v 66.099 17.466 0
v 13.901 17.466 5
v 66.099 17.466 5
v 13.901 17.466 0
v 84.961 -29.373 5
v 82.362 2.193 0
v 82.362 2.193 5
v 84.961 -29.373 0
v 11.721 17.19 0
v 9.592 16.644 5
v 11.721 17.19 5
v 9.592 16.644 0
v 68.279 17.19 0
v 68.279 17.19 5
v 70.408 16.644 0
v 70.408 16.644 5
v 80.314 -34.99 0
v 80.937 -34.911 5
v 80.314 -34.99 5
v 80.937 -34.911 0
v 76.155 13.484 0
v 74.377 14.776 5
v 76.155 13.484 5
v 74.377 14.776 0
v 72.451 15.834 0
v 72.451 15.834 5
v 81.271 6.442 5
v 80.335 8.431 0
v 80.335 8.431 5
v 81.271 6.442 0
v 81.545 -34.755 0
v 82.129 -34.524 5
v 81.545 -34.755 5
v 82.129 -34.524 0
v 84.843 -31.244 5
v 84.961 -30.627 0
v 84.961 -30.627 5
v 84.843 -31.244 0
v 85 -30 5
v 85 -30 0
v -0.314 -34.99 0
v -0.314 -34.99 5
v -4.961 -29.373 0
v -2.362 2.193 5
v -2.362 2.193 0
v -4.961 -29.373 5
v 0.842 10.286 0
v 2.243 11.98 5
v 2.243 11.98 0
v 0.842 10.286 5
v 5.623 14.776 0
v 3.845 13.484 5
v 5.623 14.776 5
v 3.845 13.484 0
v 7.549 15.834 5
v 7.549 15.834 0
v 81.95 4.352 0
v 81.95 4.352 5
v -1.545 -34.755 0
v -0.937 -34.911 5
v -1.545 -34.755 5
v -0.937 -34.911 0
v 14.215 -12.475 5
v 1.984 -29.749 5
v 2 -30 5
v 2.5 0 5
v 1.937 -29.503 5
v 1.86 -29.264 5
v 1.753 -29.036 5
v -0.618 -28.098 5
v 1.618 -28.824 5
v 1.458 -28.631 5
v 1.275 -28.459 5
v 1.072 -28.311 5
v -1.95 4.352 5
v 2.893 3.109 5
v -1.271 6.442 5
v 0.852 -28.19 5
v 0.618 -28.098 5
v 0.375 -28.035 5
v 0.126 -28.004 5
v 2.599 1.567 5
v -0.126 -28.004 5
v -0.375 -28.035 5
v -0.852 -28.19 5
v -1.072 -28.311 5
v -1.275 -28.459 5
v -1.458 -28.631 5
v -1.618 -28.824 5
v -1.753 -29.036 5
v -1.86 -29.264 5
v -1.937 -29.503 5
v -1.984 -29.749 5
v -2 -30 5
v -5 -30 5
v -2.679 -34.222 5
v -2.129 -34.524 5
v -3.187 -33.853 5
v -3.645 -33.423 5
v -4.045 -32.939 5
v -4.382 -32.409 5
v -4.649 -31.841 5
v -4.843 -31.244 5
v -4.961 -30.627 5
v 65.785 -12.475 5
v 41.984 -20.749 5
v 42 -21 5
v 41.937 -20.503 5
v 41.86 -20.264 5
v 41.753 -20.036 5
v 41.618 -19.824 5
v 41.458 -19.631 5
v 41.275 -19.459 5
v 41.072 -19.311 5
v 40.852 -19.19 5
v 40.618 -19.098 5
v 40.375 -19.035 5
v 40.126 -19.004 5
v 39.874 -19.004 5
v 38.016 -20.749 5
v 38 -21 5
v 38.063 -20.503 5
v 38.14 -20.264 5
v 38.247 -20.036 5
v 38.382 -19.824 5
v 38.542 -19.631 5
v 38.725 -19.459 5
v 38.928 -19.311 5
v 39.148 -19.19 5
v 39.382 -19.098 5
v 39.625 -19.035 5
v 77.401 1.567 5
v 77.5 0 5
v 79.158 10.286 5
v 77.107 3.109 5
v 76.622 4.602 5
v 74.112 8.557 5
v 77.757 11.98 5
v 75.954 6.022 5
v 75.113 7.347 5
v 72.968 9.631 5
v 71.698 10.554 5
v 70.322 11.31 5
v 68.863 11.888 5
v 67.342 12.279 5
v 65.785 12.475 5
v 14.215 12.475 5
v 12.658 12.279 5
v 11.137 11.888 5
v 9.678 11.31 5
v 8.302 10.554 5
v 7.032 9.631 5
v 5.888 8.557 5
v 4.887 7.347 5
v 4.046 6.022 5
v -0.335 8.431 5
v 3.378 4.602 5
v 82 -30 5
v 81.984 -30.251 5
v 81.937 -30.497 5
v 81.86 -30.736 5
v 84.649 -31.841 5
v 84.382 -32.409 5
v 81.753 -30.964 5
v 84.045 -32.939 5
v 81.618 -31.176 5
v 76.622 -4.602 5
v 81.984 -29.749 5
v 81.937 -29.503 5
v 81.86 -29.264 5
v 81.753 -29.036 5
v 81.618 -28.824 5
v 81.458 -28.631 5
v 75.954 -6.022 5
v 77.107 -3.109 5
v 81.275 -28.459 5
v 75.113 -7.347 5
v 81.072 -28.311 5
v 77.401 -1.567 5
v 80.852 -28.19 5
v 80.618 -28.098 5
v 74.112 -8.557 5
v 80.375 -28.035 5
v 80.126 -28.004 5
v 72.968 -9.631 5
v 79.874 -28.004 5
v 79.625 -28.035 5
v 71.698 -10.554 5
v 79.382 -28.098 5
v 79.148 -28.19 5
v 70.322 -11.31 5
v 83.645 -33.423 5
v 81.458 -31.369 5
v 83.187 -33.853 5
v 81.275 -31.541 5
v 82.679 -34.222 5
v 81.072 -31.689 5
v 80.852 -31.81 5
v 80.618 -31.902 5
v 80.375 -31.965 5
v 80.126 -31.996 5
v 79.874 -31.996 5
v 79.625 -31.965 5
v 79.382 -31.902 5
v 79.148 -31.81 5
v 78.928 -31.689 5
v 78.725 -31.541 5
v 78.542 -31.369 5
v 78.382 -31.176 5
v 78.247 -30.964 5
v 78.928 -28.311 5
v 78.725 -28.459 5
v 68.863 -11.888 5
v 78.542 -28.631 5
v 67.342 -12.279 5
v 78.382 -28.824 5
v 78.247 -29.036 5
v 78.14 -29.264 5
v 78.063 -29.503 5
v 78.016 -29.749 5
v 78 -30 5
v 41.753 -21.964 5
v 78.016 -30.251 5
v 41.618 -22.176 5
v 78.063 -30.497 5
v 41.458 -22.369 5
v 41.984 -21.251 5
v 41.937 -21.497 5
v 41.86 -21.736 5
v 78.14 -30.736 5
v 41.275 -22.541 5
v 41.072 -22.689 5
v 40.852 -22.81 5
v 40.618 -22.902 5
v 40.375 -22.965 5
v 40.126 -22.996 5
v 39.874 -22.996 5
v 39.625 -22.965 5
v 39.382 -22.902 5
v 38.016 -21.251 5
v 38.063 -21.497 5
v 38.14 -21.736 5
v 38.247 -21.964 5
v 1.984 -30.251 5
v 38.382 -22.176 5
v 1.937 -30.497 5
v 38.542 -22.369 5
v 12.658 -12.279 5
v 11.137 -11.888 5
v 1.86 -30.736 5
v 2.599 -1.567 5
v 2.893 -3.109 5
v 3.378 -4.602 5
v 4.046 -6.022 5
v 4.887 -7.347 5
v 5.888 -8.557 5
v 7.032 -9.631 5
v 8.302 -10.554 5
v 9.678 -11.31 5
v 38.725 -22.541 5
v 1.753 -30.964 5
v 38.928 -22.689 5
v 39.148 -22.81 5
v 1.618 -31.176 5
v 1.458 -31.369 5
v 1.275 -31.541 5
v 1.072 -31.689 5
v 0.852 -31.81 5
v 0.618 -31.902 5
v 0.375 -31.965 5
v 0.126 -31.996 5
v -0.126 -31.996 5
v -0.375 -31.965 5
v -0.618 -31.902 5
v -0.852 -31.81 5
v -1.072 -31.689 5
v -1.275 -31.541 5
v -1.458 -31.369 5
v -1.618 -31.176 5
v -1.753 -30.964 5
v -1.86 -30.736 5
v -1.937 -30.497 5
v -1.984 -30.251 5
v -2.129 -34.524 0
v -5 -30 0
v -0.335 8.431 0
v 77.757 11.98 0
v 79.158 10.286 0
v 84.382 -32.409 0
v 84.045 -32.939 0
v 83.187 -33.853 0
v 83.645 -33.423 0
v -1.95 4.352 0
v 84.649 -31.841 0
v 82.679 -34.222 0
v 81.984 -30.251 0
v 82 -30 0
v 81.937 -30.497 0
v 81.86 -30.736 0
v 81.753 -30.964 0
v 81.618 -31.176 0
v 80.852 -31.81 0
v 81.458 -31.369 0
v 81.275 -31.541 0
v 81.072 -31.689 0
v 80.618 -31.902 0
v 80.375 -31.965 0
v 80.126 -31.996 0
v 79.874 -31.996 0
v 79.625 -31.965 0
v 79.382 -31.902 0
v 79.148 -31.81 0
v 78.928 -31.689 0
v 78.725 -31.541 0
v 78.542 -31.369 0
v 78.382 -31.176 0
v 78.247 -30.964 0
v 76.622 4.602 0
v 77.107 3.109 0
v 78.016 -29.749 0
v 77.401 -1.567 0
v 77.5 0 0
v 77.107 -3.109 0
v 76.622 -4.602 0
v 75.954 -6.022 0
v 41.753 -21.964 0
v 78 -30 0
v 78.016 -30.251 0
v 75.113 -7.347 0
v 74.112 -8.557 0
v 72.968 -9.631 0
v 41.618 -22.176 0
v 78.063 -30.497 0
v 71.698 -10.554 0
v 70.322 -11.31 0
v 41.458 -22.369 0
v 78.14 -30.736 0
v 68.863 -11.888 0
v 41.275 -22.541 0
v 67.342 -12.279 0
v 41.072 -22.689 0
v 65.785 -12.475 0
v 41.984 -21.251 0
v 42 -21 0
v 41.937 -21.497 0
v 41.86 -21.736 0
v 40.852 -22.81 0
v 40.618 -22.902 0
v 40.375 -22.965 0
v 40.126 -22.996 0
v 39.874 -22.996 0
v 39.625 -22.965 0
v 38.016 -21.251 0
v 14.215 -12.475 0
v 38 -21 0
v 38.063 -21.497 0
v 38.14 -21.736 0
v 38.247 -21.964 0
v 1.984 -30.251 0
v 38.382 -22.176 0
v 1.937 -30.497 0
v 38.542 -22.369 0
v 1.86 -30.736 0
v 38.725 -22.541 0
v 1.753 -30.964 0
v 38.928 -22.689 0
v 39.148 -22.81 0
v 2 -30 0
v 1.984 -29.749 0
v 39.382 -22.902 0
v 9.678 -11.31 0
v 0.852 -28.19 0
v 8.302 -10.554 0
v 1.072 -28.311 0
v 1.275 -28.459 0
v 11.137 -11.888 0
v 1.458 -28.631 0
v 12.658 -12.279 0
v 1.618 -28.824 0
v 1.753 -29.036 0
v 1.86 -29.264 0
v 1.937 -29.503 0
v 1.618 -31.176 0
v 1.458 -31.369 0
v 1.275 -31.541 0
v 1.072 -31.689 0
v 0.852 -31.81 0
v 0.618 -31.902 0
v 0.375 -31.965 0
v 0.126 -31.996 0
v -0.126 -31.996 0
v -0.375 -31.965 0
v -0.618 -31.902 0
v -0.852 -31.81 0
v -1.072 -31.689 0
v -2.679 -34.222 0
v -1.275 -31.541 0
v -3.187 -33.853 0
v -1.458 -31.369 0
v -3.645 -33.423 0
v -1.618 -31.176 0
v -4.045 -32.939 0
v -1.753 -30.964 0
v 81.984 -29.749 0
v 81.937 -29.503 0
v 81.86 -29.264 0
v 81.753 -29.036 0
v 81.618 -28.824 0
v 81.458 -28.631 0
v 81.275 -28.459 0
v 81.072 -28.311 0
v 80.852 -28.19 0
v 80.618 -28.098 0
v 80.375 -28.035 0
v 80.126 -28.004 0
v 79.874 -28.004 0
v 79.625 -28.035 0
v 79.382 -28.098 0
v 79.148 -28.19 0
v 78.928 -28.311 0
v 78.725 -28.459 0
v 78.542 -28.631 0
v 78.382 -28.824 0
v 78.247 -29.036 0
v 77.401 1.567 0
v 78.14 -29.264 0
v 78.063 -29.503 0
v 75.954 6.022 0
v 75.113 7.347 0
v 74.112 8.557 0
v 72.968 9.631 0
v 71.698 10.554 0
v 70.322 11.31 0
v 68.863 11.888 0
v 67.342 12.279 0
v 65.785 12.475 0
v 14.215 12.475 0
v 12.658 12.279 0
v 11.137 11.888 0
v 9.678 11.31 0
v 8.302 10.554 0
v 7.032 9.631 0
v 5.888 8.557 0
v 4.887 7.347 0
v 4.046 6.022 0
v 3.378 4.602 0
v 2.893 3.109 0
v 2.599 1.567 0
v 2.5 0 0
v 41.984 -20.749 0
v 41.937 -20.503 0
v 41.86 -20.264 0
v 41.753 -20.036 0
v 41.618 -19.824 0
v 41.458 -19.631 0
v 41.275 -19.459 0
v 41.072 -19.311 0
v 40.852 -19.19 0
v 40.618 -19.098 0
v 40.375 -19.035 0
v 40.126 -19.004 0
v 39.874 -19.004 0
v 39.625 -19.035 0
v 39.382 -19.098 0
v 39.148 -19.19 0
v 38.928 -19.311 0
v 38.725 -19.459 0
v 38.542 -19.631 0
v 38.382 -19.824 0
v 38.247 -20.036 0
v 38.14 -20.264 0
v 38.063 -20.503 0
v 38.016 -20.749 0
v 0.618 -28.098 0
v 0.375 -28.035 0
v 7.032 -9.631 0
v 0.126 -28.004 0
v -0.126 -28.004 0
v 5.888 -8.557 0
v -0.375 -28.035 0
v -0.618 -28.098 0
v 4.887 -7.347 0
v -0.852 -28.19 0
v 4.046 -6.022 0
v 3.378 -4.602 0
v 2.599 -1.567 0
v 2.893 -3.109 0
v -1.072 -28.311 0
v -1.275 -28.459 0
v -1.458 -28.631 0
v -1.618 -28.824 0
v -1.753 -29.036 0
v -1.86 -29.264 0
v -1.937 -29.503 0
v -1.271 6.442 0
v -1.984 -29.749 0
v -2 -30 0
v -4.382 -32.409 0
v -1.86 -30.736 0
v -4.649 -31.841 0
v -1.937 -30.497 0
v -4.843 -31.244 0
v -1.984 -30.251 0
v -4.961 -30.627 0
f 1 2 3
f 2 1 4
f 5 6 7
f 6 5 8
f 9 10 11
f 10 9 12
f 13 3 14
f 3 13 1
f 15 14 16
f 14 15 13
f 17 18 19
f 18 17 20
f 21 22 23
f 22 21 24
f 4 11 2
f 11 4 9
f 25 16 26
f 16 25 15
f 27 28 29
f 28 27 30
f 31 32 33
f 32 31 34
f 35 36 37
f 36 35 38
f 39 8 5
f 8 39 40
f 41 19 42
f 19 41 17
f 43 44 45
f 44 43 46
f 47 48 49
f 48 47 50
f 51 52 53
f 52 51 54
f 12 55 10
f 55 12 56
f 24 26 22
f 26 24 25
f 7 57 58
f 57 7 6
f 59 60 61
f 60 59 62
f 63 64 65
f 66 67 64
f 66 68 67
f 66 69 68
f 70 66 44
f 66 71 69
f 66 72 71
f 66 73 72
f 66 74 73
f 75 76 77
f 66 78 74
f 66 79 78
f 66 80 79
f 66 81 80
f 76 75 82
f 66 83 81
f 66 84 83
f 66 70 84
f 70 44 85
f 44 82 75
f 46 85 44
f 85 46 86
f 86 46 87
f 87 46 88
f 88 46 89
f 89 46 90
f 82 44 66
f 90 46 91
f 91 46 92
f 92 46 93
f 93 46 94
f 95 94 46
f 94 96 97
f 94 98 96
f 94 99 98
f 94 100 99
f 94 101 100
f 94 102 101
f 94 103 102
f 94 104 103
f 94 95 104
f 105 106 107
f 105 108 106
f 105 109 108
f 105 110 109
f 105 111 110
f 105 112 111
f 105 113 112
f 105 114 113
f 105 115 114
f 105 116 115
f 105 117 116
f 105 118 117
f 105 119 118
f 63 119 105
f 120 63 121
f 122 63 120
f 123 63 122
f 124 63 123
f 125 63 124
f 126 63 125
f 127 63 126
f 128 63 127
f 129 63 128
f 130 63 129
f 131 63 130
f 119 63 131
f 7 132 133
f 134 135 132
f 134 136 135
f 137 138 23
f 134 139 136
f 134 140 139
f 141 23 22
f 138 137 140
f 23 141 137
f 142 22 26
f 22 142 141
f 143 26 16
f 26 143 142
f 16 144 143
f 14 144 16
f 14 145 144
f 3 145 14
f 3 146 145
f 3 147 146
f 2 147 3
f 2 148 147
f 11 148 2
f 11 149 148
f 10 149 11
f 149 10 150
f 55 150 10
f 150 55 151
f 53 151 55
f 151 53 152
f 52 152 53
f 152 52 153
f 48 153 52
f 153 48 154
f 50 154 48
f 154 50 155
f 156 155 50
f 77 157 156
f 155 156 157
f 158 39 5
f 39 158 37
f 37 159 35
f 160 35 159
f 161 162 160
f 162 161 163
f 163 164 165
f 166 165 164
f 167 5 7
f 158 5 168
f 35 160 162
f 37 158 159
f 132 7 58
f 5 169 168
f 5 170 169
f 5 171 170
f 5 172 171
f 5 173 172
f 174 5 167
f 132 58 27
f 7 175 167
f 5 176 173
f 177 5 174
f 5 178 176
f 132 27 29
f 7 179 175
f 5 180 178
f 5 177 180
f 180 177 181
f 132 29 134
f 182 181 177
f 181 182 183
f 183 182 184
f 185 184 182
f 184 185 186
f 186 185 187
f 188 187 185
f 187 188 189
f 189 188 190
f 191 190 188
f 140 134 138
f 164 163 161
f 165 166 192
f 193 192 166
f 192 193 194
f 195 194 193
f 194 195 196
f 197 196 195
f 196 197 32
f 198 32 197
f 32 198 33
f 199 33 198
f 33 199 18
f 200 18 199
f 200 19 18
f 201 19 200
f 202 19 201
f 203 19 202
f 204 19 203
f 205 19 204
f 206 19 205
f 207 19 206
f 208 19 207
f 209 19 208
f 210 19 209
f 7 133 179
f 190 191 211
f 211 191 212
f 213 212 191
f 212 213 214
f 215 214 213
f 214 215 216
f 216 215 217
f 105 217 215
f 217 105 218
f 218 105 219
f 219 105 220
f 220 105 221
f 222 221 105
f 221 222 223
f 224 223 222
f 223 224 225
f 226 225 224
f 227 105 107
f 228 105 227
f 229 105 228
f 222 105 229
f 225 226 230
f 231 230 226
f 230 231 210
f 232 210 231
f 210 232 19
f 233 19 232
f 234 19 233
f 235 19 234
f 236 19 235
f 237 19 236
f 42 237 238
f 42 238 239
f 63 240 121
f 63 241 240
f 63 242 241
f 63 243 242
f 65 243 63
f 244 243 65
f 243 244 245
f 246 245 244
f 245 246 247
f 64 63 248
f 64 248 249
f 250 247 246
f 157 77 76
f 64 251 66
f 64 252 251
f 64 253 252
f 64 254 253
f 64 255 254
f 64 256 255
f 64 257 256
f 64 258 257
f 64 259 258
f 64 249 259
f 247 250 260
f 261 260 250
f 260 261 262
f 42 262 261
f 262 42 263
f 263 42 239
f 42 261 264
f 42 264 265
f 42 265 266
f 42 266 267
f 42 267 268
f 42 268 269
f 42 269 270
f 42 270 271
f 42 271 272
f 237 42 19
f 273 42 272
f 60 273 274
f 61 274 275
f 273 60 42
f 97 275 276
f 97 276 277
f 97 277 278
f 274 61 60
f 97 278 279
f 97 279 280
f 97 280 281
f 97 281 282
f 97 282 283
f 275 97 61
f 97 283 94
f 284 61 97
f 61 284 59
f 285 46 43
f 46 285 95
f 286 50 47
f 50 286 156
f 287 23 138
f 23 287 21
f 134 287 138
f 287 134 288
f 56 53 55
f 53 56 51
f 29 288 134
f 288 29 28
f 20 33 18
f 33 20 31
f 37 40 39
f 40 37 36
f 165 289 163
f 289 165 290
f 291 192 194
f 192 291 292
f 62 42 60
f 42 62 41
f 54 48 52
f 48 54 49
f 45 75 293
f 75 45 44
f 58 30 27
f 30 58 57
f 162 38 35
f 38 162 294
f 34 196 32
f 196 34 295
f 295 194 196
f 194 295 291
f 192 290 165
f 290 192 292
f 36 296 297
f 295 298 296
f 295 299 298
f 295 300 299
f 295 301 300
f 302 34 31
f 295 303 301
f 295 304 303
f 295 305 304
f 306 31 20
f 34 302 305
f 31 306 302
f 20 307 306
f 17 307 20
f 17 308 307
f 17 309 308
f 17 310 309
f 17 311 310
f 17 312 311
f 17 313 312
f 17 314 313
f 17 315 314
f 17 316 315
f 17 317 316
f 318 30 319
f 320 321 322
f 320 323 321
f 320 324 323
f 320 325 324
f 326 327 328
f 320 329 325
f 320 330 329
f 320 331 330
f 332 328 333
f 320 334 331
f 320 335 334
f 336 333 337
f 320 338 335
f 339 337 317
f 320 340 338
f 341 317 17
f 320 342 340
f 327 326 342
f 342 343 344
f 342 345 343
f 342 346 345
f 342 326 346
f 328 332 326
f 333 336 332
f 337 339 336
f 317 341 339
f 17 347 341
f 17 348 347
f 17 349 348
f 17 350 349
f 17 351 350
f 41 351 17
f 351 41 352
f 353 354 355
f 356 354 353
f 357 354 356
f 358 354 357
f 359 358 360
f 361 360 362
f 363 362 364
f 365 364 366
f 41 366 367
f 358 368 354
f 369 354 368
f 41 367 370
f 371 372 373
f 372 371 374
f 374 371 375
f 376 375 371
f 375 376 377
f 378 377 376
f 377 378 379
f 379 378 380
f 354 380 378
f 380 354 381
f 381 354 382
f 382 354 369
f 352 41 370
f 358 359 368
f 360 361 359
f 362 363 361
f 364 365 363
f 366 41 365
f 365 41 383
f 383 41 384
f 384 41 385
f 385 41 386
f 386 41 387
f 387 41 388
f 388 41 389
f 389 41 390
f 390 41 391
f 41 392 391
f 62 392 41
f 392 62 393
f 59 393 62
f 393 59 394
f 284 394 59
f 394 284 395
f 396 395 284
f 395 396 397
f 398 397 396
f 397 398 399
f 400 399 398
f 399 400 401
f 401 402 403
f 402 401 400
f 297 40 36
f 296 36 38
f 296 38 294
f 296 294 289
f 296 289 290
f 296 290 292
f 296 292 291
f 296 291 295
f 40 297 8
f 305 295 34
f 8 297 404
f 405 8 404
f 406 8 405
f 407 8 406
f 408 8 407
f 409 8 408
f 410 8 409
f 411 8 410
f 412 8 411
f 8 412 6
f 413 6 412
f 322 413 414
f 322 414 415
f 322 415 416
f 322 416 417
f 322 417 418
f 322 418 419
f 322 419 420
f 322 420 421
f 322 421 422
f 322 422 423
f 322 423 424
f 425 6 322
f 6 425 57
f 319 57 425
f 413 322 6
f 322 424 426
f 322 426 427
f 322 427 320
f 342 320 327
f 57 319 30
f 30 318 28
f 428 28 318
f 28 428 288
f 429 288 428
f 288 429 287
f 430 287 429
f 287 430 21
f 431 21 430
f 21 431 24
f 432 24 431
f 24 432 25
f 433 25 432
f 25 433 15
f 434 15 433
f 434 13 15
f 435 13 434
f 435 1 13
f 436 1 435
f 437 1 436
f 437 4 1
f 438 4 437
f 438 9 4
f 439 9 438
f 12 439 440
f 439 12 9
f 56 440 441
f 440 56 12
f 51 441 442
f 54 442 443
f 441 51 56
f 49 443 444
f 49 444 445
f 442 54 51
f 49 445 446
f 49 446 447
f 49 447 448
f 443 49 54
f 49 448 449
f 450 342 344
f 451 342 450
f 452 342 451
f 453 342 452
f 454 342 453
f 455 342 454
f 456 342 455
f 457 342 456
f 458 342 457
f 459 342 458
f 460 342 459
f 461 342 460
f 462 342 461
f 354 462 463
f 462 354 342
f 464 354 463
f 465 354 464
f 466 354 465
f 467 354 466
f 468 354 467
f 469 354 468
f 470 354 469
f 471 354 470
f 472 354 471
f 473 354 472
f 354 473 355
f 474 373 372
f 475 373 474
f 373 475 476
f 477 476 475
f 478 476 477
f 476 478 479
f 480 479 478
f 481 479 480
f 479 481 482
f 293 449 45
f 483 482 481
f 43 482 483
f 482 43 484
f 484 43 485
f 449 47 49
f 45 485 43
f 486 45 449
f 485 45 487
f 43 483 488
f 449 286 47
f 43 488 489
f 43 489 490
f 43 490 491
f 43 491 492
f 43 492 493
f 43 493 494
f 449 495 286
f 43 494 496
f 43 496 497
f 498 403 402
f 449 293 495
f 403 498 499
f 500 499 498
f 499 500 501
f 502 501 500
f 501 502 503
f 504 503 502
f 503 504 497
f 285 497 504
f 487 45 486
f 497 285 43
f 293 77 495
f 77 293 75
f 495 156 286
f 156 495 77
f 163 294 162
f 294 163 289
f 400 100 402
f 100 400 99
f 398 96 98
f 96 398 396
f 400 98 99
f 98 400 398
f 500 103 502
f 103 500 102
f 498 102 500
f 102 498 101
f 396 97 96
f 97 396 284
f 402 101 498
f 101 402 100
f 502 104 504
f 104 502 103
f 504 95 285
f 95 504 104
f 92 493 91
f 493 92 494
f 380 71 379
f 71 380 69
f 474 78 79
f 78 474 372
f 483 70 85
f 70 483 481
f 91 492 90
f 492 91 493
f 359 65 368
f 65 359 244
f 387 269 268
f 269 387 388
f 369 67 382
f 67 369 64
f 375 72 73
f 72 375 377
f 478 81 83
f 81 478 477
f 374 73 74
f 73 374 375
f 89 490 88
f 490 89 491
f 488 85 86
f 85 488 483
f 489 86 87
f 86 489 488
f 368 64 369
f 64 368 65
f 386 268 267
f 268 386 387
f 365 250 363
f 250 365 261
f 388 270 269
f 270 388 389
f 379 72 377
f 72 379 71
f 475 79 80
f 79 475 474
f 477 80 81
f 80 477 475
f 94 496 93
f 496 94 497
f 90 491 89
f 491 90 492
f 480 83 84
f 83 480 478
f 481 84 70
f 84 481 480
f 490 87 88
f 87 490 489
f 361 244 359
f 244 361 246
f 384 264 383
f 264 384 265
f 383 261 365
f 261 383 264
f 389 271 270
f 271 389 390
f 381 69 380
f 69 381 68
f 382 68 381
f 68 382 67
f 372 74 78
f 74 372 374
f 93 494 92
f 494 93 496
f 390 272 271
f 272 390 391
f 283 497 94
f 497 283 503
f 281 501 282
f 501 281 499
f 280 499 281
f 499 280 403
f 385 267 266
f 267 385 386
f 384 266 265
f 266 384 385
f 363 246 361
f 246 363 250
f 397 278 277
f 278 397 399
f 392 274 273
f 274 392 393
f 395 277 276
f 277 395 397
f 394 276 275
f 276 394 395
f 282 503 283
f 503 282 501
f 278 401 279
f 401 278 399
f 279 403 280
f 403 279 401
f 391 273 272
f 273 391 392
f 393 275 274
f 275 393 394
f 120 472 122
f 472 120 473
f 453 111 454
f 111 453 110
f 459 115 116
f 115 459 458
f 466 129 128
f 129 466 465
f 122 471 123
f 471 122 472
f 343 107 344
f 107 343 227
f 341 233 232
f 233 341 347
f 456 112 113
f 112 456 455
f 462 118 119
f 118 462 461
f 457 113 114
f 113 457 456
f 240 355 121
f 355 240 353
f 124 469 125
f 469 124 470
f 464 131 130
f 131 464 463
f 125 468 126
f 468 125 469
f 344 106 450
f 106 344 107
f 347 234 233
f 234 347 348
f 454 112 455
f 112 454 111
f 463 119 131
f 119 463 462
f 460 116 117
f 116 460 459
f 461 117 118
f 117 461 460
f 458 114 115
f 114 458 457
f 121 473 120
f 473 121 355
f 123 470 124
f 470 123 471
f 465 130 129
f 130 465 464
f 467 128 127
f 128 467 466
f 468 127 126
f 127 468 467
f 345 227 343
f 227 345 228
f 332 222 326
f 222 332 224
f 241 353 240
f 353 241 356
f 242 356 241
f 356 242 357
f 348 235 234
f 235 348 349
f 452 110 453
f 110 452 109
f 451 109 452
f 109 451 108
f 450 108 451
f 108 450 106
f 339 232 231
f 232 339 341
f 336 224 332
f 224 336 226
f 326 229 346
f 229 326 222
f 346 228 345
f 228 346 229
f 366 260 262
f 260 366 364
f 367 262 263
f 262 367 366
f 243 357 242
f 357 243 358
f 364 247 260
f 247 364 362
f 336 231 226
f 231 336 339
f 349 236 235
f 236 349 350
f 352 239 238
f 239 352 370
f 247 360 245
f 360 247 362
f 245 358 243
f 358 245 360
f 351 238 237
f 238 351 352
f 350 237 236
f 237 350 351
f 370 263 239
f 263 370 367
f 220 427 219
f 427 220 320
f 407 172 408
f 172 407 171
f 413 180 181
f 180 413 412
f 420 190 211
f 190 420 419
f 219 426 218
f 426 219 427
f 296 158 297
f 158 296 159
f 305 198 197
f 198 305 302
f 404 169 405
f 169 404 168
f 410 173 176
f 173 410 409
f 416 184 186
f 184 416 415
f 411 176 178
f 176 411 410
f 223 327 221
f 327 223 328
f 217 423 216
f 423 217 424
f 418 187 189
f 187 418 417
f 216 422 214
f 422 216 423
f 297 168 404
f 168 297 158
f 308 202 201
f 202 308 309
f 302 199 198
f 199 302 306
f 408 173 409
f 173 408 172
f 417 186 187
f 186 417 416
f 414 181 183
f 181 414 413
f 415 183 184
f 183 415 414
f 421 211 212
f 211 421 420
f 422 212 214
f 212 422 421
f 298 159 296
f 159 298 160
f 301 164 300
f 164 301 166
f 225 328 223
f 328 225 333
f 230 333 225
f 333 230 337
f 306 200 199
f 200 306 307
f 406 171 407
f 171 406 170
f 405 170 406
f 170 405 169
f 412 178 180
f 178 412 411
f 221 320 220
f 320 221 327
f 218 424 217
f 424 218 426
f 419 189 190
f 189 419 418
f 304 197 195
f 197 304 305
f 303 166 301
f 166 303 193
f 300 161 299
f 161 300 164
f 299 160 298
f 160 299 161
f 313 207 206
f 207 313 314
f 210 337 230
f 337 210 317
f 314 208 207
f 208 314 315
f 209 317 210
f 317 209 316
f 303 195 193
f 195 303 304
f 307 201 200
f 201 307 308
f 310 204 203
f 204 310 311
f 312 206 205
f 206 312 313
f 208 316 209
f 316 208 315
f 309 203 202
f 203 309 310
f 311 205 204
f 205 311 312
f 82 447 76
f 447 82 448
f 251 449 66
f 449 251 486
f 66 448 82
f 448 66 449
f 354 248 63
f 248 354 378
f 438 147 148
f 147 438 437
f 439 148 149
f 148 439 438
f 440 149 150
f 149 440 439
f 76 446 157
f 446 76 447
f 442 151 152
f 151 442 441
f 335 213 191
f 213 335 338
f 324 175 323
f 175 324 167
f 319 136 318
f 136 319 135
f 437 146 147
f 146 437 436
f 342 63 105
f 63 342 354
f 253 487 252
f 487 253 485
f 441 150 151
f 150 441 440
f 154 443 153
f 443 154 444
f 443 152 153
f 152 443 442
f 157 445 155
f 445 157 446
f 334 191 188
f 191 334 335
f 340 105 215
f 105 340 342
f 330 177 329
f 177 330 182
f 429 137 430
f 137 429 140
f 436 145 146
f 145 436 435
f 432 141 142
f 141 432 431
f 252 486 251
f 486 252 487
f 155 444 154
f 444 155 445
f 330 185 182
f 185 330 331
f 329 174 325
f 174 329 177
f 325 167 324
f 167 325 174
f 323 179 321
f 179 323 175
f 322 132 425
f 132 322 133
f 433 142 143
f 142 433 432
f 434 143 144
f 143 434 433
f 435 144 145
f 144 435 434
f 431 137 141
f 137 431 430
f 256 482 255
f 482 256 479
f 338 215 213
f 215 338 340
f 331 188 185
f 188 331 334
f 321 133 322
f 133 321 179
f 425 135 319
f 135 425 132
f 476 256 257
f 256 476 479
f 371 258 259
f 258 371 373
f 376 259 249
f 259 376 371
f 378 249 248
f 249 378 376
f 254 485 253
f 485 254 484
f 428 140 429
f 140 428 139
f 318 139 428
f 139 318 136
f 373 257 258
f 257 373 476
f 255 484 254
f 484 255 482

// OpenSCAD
//Polargraph Carry Handle
//Copyright Mark Benson 2016 CCNC 2016

difference()
{
    hull()
    {
        translate([15,0,0])
        #cylinder(d=35,h=5,$fn=50);
        
        translate([65,0,0])
        #cylinder(d=35,h=5,$fn=50);
            
        translate([0,-30,0])
        cylinder(d=10,h=5,$fn=50);
        
        translate([80,-30,0])
        cylinder(d=10,h=5,$fn=50);
    }

        translate([0,-30,0])
        #cylinder(d=4,h=5,$fn=50);

        translate([40,-21,0])
        #cylinder(d=4,h=5,$fn=50);
        
        translate([80,-30,0])
        #cylinder(d=4,h=5,$fn=50);

    hull()
    {
        translate([15,0,0])
        #cylinder(d=25,h=5,$fn=50);
    
        translate([80-15,0,0])
        #cylinder(d=25,h=5,$fn=50);

    }
}
